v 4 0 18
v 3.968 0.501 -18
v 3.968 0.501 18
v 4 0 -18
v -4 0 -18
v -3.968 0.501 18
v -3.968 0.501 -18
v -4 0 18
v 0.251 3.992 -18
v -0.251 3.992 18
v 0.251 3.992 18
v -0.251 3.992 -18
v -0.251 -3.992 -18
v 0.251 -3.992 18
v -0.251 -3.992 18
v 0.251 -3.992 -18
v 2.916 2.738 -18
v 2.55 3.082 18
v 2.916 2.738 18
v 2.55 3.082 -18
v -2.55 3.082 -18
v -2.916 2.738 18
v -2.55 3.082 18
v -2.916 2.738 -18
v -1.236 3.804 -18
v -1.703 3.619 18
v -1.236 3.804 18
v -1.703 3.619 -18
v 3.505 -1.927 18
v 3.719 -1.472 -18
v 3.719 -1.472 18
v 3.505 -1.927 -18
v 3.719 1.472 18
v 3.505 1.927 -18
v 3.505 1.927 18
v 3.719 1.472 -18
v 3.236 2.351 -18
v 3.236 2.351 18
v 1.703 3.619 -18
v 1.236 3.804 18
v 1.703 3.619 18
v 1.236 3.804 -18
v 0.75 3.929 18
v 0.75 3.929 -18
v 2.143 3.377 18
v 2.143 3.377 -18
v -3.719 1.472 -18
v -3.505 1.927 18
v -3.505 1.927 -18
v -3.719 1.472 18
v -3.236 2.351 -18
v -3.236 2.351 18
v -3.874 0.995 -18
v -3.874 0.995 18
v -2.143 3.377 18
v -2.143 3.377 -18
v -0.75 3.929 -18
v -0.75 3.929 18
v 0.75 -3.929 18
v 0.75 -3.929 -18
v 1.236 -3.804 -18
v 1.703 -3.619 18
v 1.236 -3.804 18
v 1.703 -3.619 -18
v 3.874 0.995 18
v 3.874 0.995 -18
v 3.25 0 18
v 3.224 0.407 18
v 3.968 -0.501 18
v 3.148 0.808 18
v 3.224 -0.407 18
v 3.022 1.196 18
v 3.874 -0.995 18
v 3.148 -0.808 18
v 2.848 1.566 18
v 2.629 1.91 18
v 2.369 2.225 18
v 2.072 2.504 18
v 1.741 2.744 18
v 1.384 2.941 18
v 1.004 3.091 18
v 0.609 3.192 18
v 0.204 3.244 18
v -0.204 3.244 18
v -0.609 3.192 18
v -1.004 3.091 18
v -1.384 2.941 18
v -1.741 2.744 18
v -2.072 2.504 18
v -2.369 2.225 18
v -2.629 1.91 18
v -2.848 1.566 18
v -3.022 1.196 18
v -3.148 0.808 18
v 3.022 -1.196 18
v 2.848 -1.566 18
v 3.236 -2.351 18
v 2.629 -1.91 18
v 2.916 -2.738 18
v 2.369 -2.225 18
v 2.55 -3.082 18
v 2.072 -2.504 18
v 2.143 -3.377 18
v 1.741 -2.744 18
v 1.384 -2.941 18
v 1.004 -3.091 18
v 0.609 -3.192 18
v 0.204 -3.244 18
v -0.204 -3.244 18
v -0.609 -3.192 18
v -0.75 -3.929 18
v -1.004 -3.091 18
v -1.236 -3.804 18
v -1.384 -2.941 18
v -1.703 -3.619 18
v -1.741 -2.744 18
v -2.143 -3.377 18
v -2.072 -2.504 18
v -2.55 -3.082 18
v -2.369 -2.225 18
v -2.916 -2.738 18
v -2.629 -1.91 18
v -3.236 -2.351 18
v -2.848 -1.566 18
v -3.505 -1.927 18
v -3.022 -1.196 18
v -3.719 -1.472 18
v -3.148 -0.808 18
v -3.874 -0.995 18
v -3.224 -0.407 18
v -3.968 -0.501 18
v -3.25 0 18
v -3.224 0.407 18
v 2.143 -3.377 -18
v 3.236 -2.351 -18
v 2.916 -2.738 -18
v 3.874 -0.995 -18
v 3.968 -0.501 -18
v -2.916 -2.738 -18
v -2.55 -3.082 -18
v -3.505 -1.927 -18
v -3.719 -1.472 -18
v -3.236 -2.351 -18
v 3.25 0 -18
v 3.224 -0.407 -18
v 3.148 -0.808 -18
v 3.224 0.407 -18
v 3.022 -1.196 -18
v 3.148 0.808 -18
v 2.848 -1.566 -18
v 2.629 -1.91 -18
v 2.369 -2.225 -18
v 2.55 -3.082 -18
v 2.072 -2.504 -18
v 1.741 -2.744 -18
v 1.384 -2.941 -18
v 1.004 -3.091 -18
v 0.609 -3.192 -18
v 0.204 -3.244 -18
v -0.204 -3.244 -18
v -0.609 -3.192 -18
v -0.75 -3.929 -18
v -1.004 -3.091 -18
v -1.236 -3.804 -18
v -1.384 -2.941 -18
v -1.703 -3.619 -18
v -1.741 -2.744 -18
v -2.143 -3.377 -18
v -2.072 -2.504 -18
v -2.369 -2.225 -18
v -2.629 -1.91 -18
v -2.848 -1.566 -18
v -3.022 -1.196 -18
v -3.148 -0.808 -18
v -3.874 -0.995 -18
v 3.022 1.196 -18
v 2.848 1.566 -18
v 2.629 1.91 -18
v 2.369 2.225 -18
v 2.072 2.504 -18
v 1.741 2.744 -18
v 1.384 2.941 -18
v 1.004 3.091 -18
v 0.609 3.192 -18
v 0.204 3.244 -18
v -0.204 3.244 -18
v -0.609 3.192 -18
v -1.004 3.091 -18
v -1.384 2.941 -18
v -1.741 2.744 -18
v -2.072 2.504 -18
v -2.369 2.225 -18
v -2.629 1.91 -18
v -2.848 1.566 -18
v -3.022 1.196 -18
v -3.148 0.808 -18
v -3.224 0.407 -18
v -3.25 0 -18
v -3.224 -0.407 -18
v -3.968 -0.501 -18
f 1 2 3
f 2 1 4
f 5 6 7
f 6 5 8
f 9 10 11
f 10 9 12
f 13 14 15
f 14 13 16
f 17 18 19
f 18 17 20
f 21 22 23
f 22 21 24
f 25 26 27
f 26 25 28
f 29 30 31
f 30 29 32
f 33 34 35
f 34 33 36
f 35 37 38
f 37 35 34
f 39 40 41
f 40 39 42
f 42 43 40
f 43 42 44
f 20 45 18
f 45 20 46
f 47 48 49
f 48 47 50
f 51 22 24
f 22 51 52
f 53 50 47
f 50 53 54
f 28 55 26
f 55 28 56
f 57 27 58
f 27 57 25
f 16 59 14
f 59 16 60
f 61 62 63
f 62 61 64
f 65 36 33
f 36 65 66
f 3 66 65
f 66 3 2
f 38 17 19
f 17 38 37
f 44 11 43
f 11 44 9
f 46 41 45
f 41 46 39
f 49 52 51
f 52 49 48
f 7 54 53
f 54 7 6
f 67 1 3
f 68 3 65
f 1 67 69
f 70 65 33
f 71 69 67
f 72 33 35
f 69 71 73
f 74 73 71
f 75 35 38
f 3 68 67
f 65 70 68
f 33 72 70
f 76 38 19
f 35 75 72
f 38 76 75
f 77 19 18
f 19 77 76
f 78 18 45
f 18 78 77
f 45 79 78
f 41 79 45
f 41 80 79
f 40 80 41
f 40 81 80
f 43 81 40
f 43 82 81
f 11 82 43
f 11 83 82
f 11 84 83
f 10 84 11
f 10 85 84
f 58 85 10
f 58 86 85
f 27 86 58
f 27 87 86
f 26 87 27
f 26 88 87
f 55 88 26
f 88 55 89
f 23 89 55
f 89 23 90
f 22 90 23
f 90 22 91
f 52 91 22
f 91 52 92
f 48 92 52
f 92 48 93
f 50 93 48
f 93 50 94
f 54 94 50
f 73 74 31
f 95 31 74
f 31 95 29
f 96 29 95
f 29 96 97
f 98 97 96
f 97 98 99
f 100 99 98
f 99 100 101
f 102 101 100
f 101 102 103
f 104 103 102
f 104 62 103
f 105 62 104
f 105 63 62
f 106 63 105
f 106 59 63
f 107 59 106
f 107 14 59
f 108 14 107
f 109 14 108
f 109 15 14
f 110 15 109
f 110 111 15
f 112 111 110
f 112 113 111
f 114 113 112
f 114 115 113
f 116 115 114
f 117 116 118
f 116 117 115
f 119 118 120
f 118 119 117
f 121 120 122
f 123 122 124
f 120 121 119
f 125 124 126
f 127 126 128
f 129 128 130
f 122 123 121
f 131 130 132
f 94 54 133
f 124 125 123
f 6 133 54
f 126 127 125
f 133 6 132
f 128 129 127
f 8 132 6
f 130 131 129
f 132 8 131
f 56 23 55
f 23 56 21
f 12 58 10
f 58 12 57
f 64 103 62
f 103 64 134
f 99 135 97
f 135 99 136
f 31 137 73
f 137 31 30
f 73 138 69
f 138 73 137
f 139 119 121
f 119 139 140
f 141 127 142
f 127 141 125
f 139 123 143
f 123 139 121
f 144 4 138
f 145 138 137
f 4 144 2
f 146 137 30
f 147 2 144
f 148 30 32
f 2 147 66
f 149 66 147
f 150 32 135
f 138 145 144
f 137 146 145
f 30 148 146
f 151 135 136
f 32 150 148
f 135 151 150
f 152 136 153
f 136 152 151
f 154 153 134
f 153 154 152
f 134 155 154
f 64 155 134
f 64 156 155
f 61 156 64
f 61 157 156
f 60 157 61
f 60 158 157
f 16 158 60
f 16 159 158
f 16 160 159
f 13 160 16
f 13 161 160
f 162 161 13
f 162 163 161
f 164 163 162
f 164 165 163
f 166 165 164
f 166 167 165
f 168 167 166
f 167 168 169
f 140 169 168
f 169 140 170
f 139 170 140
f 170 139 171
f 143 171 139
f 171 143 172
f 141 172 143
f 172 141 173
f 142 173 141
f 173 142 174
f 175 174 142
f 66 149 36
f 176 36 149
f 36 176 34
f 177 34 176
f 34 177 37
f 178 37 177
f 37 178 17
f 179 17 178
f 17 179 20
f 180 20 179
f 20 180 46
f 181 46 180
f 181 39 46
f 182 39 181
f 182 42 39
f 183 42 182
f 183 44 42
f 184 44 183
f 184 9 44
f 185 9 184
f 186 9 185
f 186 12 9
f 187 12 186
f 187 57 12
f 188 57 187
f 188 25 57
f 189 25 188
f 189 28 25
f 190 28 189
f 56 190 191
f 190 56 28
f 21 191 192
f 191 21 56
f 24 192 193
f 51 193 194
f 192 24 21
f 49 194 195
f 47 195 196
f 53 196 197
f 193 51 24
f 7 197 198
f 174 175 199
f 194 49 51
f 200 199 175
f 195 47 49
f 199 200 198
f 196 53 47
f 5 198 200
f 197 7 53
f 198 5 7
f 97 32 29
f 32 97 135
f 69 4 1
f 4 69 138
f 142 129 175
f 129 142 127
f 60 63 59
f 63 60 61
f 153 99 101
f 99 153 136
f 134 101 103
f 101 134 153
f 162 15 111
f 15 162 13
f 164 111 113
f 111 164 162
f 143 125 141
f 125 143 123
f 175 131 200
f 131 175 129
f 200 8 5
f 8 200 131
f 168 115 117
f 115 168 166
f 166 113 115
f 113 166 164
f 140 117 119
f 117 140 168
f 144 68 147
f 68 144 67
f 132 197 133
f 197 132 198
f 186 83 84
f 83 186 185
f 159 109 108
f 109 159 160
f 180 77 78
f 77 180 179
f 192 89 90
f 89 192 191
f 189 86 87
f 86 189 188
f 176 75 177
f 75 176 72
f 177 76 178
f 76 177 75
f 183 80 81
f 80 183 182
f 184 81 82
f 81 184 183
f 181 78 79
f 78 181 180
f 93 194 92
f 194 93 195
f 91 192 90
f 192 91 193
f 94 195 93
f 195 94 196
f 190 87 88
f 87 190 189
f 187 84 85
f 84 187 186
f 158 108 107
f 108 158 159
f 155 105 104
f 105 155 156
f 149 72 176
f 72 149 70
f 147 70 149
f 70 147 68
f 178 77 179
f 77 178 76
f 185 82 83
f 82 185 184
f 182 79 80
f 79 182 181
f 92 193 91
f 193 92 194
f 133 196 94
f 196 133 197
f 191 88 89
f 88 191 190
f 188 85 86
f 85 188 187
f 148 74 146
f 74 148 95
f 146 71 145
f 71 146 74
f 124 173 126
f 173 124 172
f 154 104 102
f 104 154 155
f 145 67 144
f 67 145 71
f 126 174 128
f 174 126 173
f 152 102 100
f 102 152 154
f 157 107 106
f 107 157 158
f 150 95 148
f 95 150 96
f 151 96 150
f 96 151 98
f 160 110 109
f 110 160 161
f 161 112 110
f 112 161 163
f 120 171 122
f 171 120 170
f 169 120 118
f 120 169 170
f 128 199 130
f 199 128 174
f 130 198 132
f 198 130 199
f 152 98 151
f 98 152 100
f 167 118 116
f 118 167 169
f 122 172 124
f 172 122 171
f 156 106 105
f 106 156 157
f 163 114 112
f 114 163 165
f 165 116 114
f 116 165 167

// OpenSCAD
$fn = 50;


difference() {
	union() {
		translate(v = [0, 0, -18.0000000000]) {
			cylinder(h = 36, r = 4.0000000000);
		}
	}
	union() {
		translate(v = [0, 0, -100.0000000000]) {
			cylinder(h = 200, r = 3.2500000000);
		}
	}
}
